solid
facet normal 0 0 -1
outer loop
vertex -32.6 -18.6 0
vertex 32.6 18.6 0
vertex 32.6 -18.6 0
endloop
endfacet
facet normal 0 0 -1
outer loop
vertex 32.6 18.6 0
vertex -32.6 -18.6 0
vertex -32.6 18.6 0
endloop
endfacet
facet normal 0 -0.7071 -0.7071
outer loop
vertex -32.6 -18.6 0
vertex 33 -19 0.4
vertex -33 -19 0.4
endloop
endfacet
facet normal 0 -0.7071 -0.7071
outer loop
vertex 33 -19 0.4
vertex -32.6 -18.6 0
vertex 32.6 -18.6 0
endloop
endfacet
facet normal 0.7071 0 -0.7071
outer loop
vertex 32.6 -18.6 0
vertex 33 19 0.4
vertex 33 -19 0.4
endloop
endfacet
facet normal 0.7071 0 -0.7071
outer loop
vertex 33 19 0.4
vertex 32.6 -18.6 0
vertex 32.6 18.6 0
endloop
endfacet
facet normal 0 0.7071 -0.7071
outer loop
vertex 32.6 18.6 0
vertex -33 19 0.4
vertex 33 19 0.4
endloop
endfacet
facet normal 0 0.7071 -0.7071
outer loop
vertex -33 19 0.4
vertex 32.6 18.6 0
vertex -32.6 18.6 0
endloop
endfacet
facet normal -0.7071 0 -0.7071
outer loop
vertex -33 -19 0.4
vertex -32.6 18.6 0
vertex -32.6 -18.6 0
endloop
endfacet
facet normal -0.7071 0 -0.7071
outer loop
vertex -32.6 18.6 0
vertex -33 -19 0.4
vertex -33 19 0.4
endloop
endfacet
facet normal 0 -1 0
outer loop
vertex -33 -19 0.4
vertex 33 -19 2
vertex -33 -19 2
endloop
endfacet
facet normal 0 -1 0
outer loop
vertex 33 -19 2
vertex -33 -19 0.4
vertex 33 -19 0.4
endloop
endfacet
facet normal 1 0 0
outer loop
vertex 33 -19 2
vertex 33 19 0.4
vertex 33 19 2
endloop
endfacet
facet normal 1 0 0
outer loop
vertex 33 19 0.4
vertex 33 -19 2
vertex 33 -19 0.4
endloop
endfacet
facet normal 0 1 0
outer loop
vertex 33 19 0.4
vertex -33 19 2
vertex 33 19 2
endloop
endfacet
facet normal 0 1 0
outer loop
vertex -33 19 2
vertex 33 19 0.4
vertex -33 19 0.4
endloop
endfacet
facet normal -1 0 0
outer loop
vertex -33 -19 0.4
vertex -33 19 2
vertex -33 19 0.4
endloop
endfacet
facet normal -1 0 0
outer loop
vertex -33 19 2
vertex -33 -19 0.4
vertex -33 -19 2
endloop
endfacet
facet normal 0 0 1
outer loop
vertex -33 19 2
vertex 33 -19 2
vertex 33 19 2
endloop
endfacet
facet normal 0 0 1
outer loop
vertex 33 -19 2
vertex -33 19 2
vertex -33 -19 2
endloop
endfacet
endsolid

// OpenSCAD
// bed_sheet.scad - black sheet for an empty bed (design_brief.md 4.1): a loose panel laid on the
// mattress between the head and foot boards, to mark a bed whose patient has died. A separate
// part, not a colour band: on a single-extruder printer a sheet moulded into the bed would need a
// colour change in a Z band the boards also occupy, so the boards would come out black too.
// 66 x 38 x 2.0 mm, single colour, prints flat. It drops onto any bed, numbered or not.
// Export: openscad -o bed_sheet.stl bed_sheet.scad
include <common.scad>

// clear mattress between the boards, from bed.scad: 80 - 10 (footboard) - 3 (headboard),
// and 40 less the 0.6 mm chamfer on each mattress side edge
span      = bed_l - 10 - 3;              // 67
flat_w    = bed_w - 2 * 0.6;             // 38.8
clearance = 0.5;                         // along the bed, at each end
side_gap  = 0.4;                         // across the bed, at each side
thickness = base_min;                    // 2.0, the base thickness of every flat part

sheet = [span - 2 * clearance, flat_w - 2 * side_gap];   // 66 x 38

module bed_sheet() band_colour(1) chamfered_box([sheet[0], sheet[1], thickness], ct = 0);

bed_sheet();
